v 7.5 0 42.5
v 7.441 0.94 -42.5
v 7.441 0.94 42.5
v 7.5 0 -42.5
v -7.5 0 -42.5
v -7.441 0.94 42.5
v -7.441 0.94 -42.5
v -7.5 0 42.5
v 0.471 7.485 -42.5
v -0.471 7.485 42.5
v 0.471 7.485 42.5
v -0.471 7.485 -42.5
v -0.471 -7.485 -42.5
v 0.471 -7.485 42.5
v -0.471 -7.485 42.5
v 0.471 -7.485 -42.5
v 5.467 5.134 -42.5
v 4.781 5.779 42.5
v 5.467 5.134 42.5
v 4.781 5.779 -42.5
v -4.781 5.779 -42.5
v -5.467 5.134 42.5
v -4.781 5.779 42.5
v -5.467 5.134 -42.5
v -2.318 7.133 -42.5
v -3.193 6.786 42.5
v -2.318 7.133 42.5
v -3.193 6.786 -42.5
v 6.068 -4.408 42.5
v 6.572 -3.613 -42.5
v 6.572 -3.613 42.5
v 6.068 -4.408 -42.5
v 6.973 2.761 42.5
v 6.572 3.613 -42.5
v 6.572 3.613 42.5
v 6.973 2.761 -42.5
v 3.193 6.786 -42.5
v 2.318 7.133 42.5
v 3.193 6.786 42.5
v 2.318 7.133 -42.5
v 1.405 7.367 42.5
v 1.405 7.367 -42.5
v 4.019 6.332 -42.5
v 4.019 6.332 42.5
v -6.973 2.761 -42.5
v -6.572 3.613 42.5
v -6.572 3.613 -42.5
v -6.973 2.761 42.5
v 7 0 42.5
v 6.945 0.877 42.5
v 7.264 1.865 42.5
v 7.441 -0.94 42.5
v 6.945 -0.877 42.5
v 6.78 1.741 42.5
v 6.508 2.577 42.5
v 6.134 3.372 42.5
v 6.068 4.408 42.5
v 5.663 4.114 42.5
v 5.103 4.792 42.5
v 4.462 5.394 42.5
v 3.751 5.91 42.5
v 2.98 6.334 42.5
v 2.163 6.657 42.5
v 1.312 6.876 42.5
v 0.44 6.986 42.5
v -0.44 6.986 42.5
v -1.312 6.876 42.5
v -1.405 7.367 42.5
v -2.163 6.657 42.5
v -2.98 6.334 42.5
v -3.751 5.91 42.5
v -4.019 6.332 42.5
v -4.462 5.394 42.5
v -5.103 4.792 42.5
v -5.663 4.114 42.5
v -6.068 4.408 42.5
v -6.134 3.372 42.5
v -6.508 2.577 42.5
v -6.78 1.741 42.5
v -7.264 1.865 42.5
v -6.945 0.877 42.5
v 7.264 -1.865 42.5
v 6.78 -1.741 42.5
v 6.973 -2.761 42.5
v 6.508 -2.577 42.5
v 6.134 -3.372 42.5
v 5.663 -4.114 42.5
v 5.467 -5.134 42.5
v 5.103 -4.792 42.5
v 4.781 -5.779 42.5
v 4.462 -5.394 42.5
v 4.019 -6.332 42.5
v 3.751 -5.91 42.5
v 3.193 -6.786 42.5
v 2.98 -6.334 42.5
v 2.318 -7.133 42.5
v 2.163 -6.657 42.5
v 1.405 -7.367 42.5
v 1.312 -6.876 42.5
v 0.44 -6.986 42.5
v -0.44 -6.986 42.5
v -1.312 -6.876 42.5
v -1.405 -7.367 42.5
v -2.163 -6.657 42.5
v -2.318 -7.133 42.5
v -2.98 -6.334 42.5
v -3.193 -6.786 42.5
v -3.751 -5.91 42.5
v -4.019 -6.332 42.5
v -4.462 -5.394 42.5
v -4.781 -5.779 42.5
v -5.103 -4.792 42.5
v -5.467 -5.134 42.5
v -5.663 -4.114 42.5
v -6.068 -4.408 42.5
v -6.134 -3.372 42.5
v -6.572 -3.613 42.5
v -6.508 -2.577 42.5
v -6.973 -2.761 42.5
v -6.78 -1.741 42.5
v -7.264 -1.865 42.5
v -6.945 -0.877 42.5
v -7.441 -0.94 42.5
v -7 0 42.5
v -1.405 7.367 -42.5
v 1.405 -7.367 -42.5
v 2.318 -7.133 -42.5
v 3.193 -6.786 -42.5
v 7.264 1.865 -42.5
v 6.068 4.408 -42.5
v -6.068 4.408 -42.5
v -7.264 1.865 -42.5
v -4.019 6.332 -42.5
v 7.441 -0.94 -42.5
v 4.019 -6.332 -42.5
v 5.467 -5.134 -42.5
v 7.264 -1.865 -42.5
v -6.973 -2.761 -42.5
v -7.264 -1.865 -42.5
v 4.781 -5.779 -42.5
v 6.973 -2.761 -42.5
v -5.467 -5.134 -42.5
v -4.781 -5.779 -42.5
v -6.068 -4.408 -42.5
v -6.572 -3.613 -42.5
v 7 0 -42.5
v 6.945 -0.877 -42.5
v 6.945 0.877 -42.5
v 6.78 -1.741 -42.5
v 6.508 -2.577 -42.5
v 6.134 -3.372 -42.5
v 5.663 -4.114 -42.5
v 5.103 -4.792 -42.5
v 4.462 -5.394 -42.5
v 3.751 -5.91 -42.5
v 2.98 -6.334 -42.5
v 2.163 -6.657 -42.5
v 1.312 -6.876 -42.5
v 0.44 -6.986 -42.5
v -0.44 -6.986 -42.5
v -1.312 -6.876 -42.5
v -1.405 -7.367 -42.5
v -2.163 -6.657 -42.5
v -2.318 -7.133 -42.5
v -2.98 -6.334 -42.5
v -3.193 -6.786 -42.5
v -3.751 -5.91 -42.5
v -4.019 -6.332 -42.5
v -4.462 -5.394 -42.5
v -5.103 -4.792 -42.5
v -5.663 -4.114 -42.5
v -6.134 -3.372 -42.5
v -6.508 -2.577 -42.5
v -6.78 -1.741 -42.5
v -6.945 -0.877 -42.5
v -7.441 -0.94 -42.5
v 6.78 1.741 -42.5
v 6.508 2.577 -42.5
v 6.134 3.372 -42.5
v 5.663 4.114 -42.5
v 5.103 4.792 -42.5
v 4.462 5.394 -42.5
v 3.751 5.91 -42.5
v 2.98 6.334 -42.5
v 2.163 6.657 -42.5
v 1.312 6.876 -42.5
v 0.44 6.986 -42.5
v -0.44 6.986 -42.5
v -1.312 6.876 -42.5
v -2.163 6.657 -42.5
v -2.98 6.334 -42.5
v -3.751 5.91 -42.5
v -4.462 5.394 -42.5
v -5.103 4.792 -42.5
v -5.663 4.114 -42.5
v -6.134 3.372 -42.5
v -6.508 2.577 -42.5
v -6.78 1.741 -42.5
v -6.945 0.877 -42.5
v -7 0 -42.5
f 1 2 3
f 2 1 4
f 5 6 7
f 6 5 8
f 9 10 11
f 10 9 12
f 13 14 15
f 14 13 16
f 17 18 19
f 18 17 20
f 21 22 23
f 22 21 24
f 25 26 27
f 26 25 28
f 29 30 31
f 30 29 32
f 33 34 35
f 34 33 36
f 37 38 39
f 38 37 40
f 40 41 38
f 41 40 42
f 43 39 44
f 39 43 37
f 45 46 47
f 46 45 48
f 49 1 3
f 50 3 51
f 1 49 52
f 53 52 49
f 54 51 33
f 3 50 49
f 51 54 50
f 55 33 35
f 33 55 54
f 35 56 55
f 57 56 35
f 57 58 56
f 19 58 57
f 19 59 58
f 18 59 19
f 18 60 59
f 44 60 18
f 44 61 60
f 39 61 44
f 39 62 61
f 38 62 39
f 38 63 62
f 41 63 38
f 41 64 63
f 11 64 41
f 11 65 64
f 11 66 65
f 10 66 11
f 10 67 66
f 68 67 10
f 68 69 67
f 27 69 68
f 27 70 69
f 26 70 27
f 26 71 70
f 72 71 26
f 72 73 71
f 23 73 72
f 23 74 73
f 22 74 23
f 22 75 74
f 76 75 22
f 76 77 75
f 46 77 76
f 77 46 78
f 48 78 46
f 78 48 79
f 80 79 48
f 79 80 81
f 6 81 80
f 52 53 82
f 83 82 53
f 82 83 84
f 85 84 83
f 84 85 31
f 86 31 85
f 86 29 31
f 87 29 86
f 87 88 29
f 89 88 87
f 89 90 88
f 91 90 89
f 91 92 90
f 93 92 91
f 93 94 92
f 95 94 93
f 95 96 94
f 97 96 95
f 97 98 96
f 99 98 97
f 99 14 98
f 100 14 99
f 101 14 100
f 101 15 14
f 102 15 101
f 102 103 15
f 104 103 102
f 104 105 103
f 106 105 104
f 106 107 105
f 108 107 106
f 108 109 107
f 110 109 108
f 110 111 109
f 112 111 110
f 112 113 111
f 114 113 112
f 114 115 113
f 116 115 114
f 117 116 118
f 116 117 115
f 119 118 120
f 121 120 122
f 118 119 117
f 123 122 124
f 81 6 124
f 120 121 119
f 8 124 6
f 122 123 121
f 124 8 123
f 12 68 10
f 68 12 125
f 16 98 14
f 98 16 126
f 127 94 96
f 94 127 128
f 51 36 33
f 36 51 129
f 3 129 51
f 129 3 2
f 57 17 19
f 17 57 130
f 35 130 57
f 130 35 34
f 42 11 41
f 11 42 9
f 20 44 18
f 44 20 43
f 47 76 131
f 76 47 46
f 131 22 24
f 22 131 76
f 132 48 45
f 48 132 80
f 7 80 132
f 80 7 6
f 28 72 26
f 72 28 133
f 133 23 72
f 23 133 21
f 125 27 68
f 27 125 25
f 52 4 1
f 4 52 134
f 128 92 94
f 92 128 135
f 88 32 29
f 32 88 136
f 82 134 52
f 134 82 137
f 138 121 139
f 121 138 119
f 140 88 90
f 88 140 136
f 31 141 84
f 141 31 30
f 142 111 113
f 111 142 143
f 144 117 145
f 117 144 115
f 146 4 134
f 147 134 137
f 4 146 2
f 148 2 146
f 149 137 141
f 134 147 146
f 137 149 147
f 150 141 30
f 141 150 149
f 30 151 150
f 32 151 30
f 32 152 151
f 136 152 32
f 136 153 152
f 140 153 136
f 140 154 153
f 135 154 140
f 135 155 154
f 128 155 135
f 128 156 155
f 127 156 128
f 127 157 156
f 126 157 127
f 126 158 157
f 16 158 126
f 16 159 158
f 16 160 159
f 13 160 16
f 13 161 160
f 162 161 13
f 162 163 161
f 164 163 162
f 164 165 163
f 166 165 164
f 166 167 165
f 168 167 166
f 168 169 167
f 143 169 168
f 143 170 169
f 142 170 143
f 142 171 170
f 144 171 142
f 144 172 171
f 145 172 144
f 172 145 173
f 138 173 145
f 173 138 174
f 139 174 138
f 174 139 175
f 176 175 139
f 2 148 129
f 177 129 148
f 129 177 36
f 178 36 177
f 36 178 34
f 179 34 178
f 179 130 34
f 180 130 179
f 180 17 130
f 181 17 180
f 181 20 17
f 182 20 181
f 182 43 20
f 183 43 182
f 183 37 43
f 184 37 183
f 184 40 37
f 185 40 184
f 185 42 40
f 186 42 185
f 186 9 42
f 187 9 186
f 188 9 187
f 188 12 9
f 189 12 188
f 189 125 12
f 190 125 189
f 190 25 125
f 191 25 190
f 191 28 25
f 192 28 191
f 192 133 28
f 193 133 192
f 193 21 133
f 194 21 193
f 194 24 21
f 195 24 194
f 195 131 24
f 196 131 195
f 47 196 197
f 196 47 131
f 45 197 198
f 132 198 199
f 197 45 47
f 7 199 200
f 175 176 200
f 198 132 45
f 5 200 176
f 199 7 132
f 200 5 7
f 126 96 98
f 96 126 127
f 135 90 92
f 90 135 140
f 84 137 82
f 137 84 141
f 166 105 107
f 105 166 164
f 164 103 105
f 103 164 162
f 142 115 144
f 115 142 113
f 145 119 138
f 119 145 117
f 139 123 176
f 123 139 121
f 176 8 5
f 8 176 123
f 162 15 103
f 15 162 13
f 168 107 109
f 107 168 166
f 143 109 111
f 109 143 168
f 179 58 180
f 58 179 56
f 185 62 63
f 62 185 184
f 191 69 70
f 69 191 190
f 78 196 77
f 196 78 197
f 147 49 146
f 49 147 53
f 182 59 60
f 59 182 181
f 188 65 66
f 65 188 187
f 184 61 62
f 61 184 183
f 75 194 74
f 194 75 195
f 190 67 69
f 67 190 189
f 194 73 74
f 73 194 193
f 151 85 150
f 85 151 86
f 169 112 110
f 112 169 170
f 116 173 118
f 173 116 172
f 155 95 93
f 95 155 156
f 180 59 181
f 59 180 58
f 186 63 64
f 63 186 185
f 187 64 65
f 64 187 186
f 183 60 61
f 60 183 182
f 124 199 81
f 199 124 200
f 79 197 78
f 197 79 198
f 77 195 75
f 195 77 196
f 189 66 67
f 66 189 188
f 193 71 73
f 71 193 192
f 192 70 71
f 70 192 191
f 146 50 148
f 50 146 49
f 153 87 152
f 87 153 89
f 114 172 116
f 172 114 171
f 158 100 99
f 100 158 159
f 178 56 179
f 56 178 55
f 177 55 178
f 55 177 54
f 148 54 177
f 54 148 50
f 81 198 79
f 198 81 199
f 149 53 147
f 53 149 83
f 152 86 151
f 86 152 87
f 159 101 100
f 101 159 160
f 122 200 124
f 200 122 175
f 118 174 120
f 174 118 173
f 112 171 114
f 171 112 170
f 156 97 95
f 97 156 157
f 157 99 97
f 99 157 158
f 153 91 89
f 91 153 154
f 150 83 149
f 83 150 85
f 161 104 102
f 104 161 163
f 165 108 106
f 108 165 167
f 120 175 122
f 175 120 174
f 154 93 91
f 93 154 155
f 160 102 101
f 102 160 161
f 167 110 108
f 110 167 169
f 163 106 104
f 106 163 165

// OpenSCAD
$fn = 50;


difference() {
	union() {
		translate(v = [0, 0, -42.5000000000]) {
			cylinder(h = 85, r = 7.5000000000);
		}
	}
	union() {
		translate(v = [0, 0, -100.0000000000]) {
			cylinder(h = 200, r = 7);
		}
	}
}
